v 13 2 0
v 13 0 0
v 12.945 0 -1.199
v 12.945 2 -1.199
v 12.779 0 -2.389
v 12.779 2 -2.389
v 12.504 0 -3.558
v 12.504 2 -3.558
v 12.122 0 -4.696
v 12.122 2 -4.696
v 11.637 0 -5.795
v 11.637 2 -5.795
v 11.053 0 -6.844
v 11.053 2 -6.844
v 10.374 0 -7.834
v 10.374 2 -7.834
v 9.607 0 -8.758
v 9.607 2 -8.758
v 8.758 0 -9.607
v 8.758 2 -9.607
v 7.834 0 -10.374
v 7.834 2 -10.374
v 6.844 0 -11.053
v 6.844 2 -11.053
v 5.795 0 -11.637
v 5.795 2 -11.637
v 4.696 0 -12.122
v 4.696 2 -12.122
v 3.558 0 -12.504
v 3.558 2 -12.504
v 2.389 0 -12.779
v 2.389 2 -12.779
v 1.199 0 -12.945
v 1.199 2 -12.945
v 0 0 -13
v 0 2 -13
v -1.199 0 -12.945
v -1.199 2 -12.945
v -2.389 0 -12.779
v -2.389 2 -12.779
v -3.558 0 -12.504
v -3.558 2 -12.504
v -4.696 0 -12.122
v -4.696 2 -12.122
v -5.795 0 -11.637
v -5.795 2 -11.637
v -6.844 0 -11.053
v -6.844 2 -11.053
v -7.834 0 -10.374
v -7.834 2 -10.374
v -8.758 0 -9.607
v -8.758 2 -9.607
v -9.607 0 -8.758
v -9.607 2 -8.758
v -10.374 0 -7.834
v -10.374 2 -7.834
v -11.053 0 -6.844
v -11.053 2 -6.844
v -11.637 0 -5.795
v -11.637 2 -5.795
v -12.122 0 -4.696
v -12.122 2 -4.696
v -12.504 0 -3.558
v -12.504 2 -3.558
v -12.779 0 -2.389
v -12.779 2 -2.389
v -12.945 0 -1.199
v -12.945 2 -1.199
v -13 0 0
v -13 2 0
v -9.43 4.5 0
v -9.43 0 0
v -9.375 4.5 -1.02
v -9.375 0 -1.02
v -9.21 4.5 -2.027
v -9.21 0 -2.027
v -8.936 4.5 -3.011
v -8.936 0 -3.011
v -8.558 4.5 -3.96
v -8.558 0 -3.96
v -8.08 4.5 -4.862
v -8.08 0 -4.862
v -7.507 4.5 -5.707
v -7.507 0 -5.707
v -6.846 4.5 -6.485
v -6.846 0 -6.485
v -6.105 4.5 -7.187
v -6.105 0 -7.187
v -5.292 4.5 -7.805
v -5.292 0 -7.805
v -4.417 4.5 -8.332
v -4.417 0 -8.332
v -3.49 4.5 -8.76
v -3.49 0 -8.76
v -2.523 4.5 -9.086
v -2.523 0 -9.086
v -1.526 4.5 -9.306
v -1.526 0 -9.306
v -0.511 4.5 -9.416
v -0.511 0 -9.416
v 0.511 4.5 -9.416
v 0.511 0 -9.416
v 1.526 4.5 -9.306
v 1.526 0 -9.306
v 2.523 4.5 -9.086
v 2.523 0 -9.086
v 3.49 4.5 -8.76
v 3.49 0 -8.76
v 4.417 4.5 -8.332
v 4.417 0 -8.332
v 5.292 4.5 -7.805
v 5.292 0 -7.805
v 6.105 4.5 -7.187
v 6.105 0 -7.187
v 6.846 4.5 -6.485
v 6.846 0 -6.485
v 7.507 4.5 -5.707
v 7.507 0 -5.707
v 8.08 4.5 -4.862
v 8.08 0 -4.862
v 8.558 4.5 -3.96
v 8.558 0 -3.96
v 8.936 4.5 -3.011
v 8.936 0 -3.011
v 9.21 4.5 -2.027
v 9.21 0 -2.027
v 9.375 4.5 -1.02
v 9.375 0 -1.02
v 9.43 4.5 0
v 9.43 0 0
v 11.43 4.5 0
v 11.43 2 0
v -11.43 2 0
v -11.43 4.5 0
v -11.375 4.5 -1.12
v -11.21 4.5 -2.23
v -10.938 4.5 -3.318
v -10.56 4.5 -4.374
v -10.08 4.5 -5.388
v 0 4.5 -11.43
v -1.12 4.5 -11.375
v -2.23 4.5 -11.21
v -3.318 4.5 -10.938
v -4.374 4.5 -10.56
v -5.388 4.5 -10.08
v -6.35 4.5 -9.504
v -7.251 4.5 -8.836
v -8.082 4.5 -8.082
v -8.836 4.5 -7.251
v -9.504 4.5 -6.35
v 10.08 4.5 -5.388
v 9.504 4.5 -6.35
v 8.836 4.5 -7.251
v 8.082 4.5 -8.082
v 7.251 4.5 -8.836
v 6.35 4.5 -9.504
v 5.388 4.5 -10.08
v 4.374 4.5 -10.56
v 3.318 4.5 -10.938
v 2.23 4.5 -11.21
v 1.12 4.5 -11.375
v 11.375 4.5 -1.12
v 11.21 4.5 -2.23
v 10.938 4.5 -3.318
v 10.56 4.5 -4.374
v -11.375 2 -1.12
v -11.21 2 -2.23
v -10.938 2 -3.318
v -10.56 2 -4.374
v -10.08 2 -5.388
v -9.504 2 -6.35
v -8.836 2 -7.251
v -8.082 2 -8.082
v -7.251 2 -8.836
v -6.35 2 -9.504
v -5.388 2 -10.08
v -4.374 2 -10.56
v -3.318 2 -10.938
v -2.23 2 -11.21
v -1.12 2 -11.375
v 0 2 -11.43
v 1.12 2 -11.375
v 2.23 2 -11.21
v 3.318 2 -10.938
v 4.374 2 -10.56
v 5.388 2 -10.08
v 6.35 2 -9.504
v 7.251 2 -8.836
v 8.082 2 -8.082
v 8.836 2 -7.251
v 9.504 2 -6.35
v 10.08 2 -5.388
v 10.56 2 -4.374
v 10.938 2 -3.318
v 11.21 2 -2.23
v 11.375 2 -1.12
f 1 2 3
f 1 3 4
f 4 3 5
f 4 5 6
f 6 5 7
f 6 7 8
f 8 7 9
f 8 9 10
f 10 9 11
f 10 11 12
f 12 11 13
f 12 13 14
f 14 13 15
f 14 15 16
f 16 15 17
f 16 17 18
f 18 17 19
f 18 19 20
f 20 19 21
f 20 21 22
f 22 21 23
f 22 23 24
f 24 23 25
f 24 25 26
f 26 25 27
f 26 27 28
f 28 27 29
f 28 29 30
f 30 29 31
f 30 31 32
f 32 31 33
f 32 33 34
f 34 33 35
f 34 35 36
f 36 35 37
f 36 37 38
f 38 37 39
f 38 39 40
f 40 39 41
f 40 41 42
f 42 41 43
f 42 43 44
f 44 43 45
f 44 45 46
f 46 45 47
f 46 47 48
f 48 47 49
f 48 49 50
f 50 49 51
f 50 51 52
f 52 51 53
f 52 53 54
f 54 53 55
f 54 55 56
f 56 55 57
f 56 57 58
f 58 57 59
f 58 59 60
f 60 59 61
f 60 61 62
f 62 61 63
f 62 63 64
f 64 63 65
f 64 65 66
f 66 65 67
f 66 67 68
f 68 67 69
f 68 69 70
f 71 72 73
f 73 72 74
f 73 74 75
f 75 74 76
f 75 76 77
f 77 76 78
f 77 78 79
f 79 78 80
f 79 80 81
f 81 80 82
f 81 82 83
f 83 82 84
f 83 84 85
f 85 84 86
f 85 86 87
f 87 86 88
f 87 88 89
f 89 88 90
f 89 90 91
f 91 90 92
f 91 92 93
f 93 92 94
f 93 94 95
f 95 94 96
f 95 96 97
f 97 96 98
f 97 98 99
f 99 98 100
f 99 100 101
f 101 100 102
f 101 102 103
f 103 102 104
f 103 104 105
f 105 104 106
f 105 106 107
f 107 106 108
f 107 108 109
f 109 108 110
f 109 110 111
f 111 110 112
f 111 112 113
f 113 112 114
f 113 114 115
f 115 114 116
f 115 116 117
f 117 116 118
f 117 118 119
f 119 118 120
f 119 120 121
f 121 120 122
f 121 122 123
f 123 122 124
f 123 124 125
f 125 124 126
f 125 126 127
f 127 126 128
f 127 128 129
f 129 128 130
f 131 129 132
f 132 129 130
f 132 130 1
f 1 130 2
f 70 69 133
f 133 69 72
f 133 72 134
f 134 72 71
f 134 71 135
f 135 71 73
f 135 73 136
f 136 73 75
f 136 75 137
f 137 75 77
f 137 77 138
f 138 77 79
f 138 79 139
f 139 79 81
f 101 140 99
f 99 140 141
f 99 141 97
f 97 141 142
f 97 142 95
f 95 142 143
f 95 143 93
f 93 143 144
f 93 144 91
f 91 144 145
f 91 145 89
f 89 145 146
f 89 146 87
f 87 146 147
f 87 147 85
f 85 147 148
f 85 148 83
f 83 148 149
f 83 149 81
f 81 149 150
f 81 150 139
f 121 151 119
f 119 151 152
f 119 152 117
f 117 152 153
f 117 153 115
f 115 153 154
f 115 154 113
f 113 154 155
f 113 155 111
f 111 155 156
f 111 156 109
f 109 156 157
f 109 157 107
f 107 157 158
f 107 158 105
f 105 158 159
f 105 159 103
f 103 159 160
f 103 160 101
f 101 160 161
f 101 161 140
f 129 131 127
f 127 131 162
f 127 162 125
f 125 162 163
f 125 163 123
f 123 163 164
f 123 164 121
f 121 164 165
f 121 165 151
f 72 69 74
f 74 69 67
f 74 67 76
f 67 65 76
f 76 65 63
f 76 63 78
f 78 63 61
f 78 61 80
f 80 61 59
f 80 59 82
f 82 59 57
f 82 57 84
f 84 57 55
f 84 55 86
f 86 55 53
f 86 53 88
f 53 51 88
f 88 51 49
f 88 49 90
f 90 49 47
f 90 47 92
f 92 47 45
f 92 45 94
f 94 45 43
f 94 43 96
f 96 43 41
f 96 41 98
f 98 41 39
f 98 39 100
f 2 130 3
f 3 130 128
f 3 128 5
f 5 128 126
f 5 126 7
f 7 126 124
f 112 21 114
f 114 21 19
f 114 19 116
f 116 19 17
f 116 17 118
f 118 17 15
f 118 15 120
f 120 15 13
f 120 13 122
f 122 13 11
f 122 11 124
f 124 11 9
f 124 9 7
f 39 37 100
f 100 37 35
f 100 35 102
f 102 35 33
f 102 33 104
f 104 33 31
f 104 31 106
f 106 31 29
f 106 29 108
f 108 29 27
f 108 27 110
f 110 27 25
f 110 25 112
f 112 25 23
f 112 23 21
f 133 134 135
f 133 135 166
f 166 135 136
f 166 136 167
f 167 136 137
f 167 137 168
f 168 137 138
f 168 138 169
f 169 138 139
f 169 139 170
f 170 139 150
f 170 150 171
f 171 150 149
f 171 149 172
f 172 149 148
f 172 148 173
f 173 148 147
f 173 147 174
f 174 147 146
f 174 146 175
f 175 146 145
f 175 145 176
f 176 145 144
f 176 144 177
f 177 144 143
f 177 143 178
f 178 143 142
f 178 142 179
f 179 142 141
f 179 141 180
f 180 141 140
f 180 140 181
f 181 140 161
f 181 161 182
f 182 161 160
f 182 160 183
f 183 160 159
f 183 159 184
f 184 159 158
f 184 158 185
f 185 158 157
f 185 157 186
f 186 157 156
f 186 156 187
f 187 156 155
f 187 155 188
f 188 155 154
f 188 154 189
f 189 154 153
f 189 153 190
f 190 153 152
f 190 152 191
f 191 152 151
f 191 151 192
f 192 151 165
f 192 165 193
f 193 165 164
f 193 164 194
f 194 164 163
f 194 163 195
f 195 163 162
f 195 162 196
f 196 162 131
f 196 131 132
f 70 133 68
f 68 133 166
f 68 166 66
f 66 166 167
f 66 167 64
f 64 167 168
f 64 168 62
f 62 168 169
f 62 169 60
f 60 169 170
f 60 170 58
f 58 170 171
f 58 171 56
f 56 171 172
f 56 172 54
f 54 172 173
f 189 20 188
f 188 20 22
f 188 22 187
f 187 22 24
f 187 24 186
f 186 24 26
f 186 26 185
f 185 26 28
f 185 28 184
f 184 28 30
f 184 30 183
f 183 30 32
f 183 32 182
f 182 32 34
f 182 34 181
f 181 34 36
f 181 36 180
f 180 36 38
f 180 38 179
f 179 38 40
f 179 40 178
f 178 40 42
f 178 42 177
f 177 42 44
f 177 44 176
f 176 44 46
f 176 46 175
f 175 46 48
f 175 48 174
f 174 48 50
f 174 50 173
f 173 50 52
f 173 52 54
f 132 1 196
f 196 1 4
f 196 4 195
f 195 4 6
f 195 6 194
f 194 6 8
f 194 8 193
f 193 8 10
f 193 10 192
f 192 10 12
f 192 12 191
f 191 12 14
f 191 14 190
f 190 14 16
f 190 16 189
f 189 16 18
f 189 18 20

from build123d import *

# Parameters (mm, degrees)
BOSS_EXTRUDE1_DEPTH = 4.5
CUT_EXTRUDE1_DEPTH  = 2.5


with BuildPart() as part:
    # Sketch1 → Boss-Extrude1 (new body)
    with BuildSketch(Plane(origin=(0, 0, 0), x_dir=(1, 0, 0), z_dir=(0, 1, 0))):
        with BuildLine():
            Line((-13, 0), (-9.43, 0))
            ThreePointArc((-9.43, 0), (0, 9.43), (9.43, 0))
            Line((9.43, 0), (13, 0))
            ThreePointArc((13, 0), (0, 13), (-13, 0))
        make_face()
    extrude(amount=BOSS_EXTRUDE1_DEPTH)

    # Sketch2 → Cut-Extrude1 (cut)
    with BuildSketch(Plane(origin=(0, 4.5, 0), x_dir=(1, 0, 0), z_dir=(0, 1, 0))):
        with BuildLine():
            Line((-13, 0), (-11.43, 0))
            ThreePointArc((-11.43, 0), (0, 11.43), (11.43, 0))
            Line((11.43, 0), (13, 0))
            ThreePointArc((13, 0), (0, 13), (-13, 0))
        make_face()
    extrude(amount=-CUT_EXTRUDE1_DEPTH, mode=Mode.SUBTRACT)


solid = part.part
